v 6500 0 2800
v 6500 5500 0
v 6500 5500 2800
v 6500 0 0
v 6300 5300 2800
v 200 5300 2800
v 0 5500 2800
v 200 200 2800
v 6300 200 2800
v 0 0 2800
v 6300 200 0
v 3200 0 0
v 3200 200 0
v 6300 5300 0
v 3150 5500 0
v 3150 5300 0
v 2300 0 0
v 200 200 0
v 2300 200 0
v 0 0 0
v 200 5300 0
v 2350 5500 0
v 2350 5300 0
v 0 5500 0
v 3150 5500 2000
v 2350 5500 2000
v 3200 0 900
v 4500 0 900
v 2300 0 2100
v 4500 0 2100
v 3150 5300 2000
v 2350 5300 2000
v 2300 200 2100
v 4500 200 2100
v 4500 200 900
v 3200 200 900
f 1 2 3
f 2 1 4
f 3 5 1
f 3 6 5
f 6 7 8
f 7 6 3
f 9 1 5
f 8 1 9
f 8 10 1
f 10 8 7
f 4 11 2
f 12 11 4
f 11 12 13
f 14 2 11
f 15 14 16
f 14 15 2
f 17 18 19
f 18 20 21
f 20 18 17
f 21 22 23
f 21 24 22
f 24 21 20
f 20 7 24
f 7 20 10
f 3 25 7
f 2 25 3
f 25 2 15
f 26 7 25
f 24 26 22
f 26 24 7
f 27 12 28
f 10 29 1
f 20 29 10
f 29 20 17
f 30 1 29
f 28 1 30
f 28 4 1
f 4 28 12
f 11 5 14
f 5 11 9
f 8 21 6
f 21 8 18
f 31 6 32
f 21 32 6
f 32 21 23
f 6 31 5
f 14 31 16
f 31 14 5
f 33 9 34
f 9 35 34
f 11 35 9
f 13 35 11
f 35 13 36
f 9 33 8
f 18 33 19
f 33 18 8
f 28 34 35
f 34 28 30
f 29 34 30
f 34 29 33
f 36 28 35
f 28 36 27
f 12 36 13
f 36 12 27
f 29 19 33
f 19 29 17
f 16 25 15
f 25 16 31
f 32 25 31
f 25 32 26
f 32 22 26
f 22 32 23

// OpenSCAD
// Concrete 3D Printed Room - Parametric Design
// All measurements in millimeters (mm)

// === ROOM DIMENSIONS ===
room_length = 6500;        // 5 meters
room_width = 5500;         // 4 meters  
wall_height = 2800;        // 2.8 meters (standard ceiling height)
wall_thickness = 200;      // 20 cm (typical concrete 3D print)

// === WINDOW ===
window_width = 1500;       // 1.5 meters wide
window_height = 1200;      // 1.2 meters tall
window_position = 3000;    // 3 meters from left corner
window_sill_height = 900;  // 90 cm from floor

// === DOORS ===
door1_width = 900;         // 0.9 meters wide
door1_height = 2100;       // 2.1 meters tall
door2_width = 800;         // 0.8 meters wide
door2_height = 2000;       // 2 meters tall

// === GEOMETRY ===
module room() {
    difference() {
        // Outer walls (solid block)
        cube([room_length, room_width, wall_height]);
        
        // Interior cavity (hollow out the room)
        translate([wall_thickness, wall_thickness, 0])
            cube([
                room_length - 2*wall_thickness,
                room_width - 2*wall_thickness,
                wall_height + 100  // Extra height to ensure clean cut
            ]);
        
        // Window opening (front wall)
        translate([window_position, -10, window_sill_height])
            cube([window_width, wall_thickness + 20, window_height]);
        
        // Door 1 opening (front wall)
        translate([room_width/2 - door1_width/2, -10, 0])
            cube([door1_width, wall_thickness + 20, door1_height]);
        
        // Door 2 opening (back wall)
        translate([room_width/2 - door2_width/2, room_width - wall_thickness - 10, 0])
            cube([door2_width, wall_thickness + 20, door2_height]);
    }
}

// Generate the room
room();
